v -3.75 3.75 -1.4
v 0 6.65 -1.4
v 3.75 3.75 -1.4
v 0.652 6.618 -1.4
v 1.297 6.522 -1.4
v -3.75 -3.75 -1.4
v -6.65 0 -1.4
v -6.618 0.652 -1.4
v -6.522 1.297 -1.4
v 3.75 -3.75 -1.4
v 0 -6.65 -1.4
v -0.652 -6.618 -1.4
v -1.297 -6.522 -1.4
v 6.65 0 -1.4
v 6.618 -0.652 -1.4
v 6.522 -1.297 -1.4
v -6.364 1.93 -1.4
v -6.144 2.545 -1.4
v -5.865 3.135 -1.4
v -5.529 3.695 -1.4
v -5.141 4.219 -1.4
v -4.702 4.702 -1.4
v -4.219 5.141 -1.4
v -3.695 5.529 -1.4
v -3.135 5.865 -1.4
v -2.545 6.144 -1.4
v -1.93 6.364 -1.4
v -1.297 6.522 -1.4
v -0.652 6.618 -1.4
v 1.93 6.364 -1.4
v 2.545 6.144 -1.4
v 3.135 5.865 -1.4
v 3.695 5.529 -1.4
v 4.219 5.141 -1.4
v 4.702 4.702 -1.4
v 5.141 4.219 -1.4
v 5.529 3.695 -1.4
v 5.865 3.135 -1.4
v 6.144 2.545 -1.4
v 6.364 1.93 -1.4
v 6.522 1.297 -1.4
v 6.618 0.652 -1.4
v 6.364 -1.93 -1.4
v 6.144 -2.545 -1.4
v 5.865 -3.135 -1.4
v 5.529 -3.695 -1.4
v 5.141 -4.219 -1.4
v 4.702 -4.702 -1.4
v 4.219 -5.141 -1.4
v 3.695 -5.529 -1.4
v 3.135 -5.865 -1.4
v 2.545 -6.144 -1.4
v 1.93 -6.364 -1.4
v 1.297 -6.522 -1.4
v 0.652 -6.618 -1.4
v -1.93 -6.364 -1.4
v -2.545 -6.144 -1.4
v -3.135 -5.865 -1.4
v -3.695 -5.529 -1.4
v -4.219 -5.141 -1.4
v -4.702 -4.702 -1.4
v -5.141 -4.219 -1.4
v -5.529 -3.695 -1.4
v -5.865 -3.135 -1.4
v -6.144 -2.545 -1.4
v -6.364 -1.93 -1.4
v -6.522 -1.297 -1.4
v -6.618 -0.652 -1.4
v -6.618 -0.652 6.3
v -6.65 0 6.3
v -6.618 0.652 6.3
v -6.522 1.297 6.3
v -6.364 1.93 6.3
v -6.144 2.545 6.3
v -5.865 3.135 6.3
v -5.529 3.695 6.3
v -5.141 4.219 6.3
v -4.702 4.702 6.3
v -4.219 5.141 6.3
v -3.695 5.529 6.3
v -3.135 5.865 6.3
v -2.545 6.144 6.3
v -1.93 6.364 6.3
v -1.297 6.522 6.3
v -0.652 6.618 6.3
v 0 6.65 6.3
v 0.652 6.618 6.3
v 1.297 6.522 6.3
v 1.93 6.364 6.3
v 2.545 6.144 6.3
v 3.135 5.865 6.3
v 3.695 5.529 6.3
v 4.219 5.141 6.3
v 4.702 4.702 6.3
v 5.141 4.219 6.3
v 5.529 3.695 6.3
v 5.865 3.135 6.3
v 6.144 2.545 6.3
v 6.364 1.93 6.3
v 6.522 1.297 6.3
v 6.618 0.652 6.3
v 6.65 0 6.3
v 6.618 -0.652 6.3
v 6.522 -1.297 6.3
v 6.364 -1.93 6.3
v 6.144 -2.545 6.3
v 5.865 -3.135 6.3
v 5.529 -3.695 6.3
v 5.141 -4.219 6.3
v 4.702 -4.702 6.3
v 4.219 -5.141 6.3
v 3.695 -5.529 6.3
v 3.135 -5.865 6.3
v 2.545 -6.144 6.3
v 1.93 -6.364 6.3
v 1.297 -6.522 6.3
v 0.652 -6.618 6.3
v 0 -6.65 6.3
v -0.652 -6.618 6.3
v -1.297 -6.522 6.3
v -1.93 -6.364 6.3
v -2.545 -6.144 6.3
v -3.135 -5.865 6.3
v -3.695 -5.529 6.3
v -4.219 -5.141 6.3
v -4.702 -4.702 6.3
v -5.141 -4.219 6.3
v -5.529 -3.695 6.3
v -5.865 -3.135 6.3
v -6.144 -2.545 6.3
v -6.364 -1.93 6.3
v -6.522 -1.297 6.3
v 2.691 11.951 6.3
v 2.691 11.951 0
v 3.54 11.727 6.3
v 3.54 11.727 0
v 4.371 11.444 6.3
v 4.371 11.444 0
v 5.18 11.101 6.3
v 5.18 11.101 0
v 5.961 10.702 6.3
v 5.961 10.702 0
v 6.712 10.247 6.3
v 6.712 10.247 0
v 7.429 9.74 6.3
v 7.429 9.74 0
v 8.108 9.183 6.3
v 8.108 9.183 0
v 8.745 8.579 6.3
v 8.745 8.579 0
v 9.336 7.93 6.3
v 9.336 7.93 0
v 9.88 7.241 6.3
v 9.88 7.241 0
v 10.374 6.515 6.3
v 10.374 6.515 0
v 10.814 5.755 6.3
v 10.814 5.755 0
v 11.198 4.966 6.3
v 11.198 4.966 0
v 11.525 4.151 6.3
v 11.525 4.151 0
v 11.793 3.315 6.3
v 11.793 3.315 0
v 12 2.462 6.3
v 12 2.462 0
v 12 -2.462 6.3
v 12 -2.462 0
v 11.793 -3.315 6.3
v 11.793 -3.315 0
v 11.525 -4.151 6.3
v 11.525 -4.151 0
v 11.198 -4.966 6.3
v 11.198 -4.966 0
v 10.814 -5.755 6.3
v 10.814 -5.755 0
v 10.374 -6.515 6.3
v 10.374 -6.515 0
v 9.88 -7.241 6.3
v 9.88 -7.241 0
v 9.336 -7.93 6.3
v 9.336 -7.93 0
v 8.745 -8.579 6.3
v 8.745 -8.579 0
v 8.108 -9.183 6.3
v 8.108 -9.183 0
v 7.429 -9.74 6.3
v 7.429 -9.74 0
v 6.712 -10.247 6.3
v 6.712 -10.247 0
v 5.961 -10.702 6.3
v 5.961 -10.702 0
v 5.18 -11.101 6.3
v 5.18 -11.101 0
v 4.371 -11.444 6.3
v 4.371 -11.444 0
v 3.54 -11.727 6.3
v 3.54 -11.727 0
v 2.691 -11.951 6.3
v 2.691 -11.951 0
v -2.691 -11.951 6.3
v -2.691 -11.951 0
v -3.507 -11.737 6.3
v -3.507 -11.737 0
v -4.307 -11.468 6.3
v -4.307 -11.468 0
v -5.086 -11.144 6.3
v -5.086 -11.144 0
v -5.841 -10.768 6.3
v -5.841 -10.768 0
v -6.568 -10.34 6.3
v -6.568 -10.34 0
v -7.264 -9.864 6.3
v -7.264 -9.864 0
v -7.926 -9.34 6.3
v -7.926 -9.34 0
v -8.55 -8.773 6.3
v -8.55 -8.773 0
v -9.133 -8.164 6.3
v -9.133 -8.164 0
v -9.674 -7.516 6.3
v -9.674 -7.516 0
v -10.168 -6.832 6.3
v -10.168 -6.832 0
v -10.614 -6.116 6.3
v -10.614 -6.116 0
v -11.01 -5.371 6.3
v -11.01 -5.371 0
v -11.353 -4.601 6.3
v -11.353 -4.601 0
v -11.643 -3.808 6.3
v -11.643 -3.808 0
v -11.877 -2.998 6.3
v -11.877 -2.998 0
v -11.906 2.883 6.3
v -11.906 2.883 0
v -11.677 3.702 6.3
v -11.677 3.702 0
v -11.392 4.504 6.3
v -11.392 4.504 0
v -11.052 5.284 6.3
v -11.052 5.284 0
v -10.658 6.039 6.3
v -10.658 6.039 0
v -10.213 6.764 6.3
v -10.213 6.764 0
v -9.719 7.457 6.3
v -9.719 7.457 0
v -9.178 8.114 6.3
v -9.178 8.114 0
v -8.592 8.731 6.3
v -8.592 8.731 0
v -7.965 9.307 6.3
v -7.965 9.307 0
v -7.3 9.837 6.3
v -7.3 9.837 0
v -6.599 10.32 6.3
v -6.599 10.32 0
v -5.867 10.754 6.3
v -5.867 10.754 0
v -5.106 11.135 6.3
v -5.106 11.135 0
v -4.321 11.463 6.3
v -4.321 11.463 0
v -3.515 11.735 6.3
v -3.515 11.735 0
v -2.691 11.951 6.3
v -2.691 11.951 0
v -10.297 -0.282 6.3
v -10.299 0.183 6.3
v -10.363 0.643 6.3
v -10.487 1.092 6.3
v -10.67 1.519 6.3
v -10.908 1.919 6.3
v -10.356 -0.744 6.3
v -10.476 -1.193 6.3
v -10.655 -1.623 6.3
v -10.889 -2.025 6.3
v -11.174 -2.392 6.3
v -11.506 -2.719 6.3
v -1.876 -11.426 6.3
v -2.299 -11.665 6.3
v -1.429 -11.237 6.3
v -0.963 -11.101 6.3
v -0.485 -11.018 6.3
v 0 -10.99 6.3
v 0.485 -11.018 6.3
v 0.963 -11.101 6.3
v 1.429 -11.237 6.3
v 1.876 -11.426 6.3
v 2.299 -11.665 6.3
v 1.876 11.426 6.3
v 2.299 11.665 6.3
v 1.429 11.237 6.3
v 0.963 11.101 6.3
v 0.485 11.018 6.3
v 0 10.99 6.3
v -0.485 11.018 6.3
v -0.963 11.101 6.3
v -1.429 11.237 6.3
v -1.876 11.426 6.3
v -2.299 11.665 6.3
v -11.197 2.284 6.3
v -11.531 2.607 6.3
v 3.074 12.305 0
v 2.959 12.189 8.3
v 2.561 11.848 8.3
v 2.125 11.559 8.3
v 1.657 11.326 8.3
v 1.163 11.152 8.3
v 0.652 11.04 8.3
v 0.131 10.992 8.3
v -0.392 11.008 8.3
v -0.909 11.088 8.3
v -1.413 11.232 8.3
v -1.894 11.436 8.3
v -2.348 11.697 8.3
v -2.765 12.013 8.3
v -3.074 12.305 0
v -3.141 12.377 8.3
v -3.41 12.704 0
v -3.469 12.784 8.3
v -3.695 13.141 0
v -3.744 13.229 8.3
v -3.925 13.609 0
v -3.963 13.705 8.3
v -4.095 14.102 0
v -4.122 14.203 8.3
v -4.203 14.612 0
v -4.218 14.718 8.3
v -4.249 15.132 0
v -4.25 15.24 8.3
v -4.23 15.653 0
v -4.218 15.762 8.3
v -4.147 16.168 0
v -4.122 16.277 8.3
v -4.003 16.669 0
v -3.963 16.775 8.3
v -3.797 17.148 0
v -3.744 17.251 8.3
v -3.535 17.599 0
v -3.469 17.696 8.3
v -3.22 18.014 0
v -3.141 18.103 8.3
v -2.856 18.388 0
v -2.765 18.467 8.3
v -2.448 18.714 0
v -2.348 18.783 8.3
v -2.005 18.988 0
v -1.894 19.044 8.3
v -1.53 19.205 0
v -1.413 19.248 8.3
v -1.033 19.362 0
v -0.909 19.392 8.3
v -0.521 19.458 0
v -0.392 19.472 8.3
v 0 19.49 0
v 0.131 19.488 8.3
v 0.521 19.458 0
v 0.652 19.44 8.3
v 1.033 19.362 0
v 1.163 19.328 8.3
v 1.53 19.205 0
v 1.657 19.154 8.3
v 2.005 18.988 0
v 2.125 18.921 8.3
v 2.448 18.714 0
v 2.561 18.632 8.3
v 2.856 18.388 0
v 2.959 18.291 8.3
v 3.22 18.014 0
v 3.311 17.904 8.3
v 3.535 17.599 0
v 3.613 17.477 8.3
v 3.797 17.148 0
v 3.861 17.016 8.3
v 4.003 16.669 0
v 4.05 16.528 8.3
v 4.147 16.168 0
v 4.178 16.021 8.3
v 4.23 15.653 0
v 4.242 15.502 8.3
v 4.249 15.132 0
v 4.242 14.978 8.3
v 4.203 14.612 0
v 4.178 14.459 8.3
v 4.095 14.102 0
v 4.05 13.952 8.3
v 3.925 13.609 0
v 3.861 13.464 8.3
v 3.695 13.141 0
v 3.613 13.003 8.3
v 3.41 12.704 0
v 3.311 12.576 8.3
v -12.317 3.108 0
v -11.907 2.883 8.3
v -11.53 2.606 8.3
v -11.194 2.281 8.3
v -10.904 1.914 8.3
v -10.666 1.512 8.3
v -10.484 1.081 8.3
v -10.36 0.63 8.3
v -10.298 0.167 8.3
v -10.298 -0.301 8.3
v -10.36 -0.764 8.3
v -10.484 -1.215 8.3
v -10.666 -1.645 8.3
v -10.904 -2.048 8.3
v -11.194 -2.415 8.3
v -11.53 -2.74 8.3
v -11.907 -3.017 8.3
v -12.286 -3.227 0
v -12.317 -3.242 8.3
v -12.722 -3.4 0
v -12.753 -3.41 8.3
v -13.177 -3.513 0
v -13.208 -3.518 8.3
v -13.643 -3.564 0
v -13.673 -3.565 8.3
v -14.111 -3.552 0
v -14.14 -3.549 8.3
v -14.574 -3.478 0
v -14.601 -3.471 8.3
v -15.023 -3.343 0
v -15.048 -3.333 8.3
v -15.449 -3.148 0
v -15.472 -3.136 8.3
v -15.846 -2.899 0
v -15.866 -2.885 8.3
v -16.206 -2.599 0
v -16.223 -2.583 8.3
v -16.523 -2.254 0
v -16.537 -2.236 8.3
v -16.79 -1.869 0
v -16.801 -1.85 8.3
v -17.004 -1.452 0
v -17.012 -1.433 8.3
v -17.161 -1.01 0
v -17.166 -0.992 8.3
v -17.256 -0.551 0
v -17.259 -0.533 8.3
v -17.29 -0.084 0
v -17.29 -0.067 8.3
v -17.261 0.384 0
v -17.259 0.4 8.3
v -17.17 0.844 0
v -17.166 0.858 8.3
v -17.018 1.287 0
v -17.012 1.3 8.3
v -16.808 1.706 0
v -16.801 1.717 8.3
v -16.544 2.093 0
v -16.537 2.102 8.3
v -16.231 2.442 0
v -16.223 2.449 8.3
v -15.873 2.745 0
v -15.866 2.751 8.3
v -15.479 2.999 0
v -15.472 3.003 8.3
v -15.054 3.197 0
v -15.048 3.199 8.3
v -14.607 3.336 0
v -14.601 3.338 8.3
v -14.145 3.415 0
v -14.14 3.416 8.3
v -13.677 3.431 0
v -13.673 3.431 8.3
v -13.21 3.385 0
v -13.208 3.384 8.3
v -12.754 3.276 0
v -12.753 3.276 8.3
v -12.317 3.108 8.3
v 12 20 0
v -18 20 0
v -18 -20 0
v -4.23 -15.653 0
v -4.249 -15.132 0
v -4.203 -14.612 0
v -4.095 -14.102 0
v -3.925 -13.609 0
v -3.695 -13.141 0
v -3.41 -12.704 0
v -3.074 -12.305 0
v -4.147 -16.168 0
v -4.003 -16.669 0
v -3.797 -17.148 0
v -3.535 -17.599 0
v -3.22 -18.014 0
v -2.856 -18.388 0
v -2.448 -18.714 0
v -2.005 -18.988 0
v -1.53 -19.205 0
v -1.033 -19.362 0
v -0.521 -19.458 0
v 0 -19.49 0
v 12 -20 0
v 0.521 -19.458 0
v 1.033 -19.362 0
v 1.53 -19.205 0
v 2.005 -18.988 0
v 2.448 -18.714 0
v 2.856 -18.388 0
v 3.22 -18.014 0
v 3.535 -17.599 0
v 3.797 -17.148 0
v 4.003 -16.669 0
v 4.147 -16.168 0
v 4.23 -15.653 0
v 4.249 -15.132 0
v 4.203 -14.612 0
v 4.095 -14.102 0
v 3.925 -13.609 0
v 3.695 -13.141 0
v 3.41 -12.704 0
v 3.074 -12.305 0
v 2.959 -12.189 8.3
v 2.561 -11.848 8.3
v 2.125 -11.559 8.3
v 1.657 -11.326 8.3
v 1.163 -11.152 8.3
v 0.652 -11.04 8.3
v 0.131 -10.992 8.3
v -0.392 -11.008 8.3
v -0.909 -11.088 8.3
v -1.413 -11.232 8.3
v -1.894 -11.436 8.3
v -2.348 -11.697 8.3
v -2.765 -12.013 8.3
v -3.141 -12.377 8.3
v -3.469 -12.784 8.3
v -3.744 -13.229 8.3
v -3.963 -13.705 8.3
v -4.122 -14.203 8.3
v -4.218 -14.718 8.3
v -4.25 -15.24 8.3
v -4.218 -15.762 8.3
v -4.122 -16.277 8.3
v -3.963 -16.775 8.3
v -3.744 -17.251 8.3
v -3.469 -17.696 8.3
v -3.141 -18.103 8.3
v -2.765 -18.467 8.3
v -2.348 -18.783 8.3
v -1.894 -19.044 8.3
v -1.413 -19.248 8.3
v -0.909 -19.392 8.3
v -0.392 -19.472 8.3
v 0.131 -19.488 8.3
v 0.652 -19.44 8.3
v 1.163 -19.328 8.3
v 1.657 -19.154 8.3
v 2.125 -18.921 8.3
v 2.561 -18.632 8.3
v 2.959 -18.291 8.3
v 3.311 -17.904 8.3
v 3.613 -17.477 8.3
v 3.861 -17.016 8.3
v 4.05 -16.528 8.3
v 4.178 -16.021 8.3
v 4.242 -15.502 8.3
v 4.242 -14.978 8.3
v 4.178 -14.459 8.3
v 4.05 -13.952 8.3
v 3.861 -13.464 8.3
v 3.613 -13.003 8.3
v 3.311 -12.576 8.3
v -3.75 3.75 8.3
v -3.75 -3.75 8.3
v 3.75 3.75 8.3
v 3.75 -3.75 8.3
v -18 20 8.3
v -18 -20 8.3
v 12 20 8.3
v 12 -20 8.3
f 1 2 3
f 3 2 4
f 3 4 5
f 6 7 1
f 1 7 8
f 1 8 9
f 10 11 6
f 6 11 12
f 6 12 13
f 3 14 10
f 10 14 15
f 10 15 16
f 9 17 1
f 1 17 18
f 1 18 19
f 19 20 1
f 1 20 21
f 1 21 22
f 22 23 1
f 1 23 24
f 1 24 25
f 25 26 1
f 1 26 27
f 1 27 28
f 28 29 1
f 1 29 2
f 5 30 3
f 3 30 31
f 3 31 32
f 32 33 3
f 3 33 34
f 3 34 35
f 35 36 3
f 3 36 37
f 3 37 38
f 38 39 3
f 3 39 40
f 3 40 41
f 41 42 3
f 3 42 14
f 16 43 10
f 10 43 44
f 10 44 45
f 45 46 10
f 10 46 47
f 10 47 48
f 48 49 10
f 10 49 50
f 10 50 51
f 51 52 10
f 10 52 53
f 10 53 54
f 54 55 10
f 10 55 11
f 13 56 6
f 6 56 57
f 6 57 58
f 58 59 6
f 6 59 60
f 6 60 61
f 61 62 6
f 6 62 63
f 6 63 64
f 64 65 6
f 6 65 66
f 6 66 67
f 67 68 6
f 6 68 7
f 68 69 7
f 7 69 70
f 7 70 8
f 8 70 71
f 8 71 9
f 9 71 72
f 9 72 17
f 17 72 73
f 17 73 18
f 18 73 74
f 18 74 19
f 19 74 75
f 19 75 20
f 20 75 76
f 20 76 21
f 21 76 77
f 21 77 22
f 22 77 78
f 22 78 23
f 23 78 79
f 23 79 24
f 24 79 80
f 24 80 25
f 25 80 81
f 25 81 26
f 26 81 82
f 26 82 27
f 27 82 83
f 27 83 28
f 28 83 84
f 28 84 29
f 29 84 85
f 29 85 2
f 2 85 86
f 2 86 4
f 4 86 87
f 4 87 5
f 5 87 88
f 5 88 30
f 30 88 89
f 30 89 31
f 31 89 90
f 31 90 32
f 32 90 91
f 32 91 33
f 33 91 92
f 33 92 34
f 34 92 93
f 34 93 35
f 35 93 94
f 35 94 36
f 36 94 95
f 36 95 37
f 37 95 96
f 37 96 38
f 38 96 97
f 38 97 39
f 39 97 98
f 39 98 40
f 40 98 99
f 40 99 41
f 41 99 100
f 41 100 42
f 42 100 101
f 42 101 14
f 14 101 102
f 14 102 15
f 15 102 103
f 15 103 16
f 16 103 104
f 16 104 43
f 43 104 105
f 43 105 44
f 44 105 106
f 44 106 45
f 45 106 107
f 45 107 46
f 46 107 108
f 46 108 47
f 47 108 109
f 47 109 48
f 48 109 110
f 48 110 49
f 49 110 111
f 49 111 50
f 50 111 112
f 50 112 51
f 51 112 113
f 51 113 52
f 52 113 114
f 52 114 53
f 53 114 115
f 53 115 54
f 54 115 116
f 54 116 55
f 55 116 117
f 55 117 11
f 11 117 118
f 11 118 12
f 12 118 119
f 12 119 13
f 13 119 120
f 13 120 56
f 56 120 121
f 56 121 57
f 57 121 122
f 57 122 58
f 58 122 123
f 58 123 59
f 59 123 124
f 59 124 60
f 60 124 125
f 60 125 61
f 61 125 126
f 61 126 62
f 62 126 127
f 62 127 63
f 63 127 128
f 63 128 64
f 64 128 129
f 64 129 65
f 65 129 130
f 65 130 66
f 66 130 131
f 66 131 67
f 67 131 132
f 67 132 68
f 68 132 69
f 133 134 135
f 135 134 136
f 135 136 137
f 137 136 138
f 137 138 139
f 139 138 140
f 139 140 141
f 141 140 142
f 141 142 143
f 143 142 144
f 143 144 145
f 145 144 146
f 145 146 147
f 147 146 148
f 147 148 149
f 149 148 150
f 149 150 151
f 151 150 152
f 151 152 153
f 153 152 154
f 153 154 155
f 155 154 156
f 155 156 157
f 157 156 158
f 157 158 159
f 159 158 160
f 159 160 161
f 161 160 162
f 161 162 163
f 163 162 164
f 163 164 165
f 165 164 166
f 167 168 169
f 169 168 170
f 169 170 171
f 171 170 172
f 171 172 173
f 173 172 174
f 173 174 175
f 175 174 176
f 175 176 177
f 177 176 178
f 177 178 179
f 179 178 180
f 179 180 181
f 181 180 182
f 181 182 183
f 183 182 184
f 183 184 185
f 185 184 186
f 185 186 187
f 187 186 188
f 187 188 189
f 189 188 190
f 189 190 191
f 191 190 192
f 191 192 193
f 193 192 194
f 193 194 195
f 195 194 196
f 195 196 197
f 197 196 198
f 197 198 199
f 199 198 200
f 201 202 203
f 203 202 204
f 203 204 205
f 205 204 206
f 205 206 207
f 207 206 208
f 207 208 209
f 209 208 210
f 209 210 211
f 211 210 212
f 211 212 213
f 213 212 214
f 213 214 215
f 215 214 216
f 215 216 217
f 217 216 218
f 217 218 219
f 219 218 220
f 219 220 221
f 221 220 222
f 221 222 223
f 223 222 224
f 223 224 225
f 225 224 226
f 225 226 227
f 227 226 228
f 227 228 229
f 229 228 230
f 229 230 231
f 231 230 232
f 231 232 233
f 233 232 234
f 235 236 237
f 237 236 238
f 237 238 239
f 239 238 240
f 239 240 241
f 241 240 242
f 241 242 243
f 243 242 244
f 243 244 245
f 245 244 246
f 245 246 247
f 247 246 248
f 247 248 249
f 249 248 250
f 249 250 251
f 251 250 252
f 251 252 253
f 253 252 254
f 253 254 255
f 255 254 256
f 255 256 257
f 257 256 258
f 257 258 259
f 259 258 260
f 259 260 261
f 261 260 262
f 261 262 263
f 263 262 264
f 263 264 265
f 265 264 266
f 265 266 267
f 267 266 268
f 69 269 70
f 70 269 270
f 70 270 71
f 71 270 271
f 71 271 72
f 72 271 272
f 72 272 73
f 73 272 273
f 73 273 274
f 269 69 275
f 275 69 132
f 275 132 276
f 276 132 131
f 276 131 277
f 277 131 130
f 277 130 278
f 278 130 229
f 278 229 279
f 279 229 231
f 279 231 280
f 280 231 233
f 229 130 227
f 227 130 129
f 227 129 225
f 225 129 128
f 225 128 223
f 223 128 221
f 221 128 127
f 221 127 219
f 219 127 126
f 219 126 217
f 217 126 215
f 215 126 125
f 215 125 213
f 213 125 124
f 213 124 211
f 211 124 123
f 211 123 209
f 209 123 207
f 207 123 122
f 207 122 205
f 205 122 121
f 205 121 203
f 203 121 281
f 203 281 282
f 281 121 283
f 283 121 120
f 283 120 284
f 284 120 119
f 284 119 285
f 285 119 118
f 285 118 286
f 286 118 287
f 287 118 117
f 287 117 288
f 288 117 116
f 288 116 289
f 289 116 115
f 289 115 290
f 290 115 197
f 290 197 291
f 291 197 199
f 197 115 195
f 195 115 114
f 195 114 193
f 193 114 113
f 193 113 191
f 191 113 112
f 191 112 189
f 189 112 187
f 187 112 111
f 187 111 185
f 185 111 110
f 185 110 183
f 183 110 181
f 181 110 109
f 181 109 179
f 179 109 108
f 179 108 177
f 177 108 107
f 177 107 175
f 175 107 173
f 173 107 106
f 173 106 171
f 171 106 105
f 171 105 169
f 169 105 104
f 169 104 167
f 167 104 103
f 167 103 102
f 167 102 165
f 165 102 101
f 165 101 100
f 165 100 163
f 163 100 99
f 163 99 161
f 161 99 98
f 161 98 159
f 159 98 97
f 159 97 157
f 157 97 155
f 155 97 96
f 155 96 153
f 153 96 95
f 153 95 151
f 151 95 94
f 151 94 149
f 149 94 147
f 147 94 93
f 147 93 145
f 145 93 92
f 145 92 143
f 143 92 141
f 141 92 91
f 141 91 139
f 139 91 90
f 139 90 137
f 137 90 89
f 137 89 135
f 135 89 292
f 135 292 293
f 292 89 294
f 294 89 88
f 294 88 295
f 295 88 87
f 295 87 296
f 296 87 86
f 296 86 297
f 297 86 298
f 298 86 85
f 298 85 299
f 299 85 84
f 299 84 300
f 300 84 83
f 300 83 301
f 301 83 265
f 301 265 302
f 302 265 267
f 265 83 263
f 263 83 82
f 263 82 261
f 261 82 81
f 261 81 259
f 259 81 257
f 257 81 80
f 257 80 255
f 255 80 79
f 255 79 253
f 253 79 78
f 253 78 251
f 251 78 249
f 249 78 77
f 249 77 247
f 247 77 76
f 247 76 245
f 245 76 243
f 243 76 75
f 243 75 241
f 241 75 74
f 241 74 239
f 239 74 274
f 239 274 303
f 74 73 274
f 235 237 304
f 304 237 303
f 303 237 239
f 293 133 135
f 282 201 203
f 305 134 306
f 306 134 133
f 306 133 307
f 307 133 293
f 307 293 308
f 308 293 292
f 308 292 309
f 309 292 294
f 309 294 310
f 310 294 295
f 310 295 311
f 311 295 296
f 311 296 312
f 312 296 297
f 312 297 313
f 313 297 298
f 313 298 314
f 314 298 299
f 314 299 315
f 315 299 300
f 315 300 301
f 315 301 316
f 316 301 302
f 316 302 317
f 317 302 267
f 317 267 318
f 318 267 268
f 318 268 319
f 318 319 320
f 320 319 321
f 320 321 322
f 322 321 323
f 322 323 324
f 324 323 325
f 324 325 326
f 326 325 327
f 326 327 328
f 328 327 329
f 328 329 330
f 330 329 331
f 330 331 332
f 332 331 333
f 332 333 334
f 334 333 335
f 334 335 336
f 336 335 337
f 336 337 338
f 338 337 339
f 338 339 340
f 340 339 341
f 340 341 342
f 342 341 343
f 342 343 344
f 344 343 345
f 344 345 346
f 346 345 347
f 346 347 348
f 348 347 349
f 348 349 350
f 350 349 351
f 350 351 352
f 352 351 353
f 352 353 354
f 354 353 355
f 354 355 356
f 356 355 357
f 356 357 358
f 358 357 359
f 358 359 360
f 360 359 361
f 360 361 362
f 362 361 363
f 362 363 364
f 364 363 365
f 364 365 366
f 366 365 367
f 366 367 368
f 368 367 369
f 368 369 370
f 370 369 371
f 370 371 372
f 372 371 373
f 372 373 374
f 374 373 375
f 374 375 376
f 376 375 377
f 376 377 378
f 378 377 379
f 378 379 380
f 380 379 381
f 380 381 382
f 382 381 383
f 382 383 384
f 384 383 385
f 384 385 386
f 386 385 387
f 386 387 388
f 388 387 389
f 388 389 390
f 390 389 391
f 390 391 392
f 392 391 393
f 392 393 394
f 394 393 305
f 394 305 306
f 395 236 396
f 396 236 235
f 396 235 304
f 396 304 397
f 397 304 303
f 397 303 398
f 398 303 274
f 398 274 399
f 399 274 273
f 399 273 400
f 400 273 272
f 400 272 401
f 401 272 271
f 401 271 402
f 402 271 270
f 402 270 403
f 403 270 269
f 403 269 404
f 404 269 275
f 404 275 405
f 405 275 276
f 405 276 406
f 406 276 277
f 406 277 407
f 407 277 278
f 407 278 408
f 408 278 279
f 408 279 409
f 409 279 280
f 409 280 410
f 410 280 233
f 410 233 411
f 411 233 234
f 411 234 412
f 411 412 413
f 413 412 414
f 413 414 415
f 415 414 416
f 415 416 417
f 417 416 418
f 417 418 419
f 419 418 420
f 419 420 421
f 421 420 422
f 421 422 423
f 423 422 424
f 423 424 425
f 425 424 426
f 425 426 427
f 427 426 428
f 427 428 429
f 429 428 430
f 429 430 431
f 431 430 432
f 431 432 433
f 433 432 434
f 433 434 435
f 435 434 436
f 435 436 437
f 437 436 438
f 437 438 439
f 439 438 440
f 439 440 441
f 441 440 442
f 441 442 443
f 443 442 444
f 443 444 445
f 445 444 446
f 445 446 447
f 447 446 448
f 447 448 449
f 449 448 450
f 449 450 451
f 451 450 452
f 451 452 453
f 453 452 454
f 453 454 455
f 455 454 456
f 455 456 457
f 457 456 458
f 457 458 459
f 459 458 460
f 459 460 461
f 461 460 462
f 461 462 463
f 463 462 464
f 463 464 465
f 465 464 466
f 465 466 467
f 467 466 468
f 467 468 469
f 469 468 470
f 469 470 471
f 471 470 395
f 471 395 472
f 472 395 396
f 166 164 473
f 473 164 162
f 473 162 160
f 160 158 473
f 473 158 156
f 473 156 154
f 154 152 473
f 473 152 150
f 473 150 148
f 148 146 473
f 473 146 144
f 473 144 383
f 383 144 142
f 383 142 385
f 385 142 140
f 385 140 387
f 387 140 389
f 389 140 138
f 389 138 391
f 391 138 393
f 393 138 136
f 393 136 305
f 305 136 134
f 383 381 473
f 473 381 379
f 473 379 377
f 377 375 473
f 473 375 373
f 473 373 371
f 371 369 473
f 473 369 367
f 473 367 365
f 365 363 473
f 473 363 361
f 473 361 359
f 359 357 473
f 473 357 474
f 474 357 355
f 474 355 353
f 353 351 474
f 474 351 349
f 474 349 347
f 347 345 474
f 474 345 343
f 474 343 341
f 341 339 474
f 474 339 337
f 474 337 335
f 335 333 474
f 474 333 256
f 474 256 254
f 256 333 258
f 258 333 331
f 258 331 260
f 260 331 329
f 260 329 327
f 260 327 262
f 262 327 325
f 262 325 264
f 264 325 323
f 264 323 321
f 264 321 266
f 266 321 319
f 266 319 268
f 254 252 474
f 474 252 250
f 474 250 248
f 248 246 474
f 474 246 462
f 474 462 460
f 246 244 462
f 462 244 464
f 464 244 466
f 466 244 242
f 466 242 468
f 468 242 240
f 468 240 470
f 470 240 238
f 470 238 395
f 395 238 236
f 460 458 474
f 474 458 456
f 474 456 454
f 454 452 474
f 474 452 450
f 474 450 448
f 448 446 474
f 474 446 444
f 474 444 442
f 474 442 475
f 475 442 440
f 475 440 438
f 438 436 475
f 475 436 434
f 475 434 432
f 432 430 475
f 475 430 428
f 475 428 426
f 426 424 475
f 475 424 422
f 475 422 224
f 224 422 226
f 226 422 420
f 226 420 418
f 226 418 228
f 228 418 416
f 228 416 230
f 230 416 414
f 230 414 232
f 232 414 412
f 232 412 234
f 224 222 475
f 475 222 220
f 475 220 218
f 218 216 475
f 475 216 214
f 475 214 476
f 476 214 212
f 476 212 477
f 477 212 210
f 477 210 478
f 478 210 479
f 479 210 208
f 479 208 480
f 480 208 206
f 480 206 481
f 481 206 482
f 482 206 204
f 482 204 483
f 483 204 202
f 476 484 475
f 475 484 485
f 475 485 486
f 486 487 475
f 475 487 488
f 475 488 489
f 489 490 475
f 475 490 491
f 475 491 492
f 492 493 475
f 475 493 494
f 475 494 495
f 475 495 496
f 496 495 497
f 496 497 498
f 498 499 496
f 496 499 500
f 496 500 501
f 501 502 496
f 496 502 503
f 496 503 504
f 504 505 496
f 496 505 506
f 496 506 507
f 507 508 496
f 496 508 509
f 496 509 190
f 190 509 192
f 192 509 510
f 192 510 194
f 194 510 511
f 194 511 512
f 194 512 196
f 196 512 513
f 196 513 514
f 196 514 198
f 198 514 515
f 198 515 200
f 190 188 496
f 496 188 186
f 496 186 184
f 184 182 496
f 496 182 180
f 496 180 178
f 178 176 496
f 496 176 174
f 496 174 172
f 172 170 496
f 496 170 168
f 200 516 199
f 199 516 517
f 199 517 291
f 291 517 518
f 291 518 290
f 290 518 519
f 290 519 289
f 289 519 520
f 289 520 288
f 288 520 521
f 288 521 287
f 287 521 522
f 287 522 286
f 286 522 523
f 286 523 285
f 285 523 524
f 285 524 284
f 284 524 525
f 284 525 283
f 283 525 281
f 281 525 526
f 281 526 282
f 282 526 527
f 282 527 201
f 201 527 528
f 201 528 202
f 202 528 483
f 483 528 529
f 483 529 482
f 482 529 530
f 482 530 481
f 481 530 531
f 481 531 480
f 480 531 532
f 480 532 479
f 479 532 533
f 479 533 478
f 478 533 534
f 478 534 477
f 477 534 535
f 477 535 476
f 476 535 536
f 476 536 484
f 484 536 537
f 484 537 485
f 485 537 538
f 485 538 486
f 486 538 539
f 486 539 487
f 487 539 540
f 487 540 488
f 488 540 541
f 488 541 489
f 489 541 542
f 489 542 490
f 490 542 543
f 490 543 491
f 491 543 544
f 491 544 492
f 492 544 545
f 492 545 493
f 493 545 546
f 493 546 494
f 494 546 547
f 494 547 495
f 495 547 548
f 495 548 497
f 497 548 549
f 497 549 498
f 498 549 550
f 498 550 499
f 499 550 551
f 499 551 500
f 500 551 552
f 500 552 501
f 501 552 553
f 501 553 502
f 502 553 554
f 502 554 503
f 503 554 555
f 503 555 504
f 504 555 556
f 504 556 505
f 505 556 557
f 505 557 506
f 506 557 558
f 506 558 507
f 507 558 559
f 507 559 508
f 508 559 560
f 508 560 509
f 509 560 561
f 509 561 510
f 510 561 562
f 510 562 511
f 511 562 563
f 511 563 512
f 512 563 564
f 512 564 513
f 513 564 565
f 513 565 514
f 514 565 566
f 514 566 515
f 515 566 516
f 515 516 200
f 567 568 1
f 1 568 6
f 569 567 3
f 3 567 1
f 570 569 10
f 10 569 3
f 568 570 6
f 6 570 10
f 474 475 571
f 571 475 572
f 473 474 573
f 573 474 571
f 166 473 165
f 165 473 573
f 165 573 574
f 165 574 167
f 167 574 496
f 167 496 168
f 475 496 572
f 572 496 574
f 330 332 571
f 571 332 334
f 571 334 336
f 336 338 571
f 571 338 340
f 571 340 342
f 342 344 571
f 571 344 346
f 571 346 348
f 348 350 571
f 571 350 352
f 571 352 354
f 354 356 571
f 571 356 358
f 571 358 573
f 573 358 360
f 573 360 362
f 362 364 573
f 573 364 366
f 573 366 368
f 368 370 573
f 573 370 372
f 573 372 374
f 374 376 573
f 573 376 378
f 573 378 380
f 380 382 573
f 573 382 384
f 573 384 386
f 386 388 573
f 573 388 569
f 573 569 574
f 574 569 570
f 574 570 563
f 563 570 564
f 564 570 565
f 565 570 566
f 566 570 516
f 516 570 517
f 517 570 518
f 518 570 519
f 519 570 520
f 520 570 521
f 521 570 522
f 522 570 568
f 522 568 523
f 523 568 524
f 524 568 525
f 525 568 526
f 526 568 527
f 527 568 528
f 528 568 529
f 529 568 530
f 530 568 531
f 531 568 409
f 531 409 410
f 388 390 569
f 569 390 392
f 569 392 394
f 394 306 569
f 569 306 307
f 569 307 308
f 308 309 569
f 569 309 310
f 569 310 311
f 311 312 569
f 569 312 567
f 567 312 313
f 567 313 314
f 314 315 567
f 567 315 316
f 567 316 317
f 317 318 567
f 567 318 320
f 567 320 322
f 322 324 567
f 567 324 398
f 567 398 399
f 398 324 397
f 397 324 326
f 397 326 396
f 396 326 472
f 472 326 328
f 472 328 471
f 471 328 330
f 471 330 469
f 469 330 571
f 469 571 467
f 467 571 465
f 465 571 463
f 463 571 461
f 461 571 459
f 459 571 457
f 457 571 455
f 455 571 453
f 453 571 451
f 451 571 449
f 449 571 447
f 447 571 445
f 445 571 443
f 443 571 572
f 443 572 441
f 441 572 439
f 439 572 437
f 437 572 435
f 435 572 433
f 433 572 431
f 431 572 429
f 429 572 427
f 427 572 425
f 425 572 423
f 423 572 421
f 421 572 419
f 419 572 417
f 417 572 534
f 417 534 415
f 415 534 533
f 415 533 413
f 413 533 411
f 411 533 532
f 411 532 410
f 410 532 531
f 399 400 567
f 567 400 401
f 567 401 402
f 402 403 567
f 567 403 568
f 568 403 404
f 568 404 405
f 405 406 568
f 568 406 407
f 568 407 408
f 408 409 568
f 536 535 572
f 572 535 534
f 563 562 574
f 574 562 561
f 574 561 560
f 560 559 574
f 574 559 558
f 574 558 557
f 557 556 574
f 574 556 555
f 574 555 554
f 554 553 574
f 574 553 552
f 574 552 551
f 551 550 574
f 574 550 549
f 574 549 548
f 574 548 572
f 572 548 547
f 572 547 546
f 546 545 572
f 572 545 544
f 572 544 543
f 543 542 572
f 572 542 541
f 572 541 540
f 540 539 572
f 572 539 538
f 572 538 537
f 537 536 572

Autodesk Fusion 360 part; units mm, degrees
sketch "Skizze1" plane through (0, 0, 0) normal (0, 0, 1) x (1, 0, 0)
  line L0 (-18, 20) -> (12, 20)
  line L1 (12, 20) -> (12, -20)
  line L2 (12, -20) -> (-18, -20)
  line L3 (-18, -20) -> (-18, 20)
  line L4 (0, 23) -> (0, -24) construction
  line L5 (-24.4424, 15.24) -> (27, 15.24) construction
  line L6 (-24, -15.24) -> (24, -15.24) construction
  line L7 (-13.79, 18) -> (-13.79, -18.6195) construction
  circle A0 centre (0, 15.24) radius 4.25
  circle A1 centre (0, -15.24) radius 4.25
  circle A2 centre (-13.79, -0.0668) radius 3.5
  circle A3 centre (0, 0) radius 12.25
  line L8 (3.75, -3.75) -> (-3.75, -3.75)
  line L9 (-3.75, -3.75) -> (-3.75, 3.75)
  line L10 (-3.75, 3.75) -> (3.75, 3.75)
  line L11 (3.75, 3.75) -> (3.75, -3.75)
  line L12 (3.75, -3.75) -> (-3.75, 3.75) construction
  line L13 (-3.75, -3.75) -> (3.75, 3.75) construction
  circle A4 centre (0, 0) radius 6.65
  dimension "d1" = 12
  dimension "d2" = 18
  dimension "d3" = 20
  dimension "d4" = 20
  dimension "d5" = 15.24
  dimension "d6" = 15.24
  dimension "d7" = 13.79
  dimension "d8" = 8.5
  dimension "d9" = 8.5
  dimension "d10" = 7
  dimension "d11" = 24.5
  dimension "d12" = 7.5
  dimension "d13" = 7.5
  dimension "d24" = 4.76
  dimension "d25" = 13.3
extrude "Extrusion1" add sketch "Skizze1" along normal blind 8.3 contours L0 L1 L2 L3 A0 A1 A2 A3 | L1 A0 A1 A2 A3 | A0 A3 | A0 A3 | A1 A3 | A1 A3 | A2 A3 | A2 A3 | L8 L9 L10 L11 | A4
extrude "Extrusion6" cut sketch "Skizze1" along normal blind 10 contours A0 A3 | A0 A3 | A1 A3 | A1 A3 | A2 A3 | A2 A3 | L8 L9 L10 L11
extrude "Extrusion7" cut sketch "Skizze1" along normal blind 6.3 contours L1 A0 A1 A2 A3
extrude "Extrusion8" add sketch "Skizze1" against normal blind 1.4 contours A4
